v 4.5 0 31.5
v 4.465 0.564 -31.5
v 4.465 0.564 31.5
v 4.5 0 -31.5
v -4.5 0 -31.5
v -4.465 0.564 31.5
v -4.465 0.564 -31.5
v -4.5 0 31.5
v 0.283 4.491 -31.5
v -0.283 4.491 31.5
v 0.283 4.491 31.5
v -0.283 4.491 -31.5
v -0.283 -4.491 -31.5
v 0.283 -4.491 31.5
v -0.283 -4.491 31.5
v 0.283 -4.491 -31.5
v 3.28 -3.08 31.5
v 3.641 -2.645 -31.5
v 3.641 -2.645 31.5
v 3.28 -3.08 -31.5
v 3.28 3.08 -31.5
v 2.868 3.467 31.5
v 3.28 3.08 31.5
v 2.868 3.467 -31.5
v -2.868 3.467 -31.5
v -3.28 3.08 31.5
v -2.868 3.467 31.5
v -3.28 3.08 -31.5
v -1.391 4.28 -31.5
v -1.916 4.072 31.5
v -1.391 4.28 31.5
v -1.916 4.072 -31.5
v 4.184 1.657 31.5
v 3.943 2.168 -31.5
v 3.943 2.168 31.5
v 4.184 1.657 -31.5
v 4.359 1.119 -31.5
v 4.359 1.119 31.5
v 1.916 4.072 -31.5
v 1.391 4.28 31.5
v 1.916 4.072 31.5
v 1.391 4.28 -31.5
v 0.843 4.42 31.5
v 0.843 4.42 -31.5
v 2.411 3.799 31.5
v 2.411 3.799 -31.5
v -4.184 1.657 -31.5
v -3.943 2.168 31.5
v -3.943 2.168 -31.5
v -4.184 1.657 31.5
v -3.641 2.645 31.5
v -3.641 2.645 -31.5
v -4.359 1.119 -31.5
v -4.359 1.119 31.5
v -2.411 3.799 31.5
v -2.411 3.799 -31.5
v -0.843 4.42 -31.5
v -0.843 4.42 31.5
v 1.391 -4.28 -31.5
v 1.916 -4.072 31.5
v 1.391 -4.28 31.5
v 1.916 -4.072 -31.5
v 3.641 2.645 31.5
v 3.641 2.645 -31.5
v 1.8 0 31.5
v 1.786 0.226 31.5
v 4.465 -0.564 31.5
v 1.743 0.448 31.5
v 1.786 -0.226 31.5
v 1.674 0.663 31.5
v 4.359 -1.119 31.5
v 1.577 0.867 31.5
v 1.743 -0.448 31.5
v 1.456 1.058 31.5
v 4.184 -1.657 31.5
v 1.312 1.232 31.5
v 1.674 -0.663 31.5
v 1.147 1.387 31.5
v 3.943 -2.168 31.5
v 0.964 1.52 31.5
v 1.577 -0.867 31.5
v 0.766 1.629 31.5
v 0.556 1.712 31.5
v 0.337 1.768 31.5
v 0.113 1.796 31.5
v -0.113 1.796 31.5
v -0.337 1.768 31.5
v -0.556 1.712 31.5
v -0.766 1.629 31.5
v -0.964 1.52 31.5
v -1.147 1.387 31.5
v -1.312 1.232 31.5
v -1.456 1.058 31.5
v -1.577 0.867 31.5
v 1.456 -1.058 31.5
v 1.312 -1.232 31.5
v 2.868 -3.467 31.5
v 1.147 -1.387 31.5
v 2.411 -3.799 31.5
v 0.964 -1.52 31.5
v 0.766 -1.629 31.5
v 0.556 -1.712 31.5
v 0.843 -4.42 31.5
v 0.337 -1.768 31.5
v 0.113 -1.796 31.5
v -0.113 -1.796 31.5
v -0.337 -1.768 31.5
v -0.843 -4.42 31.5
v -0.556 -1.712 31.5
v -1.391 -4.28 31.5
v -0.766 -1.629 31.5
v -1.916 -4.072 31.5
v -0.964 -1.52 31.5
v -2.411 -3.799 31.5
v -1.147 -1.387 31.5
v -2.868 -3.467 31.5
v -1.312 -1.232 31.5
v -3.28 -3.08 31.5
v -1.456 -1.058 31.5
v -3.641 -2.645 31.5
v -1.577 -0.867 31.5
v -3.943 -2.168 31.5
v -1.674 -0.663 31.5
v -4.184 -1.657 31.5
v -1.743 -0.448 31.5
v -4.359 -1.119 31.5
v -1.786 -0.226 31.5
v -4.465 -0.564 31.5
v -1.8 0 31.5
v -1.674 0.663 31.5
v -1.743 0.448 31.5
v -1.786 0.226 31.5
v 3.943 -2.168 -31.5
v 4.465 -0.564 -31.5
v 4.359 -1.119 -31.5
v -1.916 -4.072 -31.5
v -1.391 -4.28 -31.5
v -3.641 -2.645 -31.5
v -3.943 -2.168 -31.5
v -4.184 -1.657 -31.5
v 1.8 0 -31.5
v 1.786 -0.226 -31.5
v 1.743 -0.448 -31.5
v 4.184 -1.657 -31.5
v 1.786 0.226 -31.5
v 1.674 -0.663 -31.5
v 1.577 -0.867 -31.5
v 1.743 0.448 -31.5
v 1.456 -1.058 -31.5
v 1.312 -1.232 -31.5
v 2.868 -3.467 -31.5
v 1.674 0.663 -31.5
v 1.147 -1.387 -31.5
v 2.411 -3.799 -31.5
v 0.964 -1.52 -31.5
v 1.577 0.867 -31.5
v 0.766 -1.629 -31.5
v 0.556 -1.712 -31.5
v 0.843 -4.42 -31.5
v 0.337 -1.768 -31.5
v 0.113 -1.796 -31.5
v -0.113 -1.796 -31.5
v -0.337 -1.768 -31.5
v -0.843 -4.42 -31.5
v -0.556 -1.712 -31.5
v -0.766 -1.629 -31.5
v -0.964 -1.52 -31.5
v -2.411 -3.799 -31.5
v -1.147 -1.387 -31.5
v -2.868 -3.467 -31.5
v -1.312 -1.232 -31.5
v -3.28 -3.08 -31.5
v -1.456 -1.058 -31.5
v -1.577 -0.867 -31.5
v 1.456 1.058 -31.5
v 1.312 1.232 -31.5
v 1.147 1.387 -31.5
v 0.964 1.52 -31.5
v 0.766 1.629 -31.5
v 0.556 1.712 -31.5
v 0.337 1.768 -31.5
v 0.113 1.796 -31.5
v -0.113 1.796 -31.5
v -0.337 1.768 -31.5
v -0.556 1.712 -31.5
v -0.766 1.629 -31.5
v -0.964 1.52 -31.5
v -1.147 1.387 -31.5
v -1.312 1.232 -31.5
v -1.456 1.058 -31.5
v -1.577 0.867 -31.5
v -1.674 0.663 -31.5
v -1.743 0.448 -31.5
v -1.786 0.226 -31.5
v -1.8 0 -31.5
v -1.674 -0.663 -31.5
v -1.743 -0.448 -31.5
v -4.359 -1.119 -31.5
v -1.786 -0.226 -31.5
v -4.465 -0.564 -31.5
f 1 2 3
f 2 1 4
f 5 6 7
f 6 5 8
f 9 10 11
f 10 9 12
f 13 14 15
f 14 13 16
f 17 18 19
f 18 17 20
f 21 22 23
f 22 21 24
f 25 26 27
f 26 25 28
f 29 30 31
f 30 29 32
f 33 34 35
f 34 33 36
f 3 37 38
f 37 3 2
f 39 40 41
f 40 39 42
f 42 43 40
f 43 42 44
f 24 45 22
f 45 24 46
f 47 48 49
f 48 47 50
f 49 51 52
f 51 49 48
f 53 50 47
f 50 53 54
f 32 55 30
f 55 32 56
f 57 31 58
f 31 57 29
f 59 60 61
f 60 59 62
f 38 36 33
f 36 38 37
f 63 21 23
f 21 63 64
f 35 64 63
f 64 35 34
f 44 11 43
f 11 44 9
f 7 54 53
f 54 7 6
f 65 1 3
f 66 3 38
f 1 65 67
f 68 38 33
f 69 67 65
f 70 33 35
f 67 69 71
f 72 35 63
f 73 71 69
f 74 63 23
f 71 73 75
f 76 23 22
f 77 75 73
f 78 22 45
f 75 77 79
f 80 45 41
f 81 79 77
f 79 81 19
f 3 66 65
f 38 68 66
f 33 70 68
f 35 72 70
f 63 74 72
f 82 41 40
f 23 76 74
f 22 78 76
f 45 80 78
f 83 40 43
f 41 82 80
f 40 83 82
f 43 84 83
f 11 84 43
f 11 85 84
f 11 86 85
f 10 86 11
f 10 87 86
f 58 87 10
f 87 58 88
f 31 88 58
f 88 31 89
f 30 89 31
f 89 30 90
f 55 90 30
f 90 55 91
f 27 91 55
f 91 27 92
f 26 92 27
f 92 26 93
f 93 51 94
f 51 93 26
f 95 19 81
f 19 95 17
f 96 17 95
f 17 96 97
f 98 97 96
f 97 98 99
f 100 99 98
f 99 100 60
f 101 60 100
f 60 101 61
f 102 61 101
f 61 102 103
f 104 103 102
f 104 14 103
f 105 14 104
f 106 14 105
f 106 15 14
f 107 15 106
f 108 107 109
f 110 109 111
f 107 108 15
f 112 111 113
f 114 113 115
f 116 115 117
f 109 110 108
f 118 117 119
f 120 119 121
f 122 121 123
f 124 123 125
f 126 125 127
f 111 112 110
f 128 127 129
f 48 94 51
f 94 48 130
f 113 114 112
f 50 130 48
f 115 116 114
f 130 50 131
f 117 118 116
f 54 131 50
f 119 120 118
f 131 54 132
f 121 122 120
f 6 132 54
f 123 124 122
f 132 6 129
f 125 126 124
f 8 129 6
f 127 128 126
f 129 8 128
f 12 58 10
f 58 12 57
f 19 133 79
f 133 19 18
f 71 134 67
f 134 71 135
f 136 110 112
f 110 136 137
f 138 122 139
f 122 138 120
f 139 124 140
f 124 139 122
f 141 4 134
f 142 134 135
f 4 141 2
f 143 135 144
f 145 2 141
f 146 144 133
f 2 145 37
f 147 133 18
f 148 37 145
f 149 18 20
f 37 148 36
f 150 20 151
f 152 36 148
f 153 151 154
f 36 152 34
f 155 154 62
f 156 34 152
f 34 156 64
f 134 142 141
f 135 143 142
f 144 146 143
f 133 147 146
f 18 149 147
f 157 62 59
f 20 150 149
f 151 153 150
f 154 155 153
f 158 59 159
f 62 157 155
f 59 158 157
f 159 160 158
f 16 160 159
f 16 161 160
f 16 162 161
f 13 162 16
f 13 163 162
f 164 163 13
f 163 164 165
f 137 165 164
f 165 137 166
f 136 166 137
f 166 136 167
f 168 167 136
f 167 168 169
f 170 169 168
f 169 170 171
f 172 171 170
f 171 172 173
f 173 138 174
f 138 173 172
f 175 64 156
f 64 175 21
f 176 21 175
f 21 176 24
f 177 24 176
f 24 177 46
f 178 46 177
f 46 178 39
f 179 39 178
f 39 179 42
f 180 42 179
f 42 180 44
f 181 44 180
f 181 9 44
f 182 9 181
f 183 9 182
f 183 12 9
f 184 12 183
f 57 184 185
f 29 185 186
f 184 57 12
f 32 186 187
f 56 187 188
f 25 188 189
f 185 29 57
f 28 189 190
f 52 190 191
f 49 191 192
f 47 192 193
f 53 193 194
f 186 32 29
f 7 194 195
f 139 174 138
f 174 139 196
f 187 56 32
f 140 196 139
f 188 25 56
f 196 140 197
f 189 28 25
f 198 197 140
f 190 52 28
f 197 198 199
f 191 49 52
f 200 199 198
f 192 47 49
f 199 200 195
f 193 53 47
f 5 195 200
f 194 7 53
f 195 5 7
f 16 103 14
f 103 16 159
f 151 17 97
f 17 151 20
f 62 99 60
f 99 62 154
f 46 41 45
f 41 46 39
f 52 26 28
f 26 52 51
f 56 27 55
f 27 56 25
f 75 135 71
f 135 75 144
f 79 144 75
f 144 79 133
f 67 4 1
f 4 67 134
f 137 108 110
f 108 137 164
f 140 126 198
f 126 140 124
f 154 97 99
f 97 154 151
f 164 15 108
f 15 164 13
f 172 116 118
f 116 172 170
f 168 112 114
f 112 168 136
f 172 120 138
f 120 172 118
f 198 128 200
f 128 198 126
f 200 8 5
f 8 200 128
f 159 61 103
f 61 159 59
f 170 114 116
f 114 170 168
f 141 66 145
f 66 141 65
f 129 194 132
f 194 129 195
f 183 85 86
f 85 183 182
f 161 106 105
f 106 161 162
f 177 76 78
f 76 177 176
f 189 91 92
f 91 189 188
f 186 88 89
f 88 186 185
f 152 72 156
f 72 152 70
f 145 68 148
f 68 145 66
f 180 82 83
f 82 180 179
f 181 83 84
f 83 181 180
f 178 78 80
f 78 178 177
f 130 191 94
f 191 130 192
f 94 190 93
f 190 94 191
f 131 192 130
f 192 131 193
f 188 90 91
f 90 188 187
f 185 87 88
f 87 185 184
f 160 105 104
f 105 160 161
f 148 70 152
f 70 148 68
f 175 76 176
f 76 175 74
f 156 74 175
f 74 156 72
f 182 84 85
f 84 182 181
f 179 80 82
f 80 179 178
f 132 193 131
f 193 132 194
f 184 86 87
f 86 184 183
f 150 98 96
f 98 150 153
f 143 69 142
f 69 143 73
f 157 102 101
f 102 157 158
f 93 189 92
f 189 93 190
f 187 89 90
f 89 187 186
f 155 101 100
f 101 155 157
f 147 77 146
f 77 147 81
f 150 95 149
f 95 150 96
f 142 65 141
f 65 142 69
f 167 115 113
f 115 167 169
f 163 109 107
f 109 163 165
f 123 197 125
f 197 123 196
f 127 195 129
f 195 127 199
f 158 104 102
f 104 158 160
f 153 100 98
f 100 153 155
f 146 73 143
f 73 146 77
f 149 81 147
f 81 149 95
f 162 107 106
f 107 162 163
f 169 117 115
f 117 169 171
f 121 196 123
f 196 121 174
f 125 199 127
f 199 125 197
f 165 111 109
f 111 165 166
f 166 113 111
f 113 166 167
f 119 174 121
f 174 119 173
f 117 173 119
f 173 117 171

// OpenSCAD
$fn = 50;


difference() {
	union() {
		translate(v = [0, 0, -31.5000000000]) {
			cylinder(h = 63, r = 4.5000000000);
		}
	}
	union() {
		translate(v = [0, 0, -100.0000000000]) {
			cylinder(h = 200, r = 1.8000000000);
		}
	}
}
